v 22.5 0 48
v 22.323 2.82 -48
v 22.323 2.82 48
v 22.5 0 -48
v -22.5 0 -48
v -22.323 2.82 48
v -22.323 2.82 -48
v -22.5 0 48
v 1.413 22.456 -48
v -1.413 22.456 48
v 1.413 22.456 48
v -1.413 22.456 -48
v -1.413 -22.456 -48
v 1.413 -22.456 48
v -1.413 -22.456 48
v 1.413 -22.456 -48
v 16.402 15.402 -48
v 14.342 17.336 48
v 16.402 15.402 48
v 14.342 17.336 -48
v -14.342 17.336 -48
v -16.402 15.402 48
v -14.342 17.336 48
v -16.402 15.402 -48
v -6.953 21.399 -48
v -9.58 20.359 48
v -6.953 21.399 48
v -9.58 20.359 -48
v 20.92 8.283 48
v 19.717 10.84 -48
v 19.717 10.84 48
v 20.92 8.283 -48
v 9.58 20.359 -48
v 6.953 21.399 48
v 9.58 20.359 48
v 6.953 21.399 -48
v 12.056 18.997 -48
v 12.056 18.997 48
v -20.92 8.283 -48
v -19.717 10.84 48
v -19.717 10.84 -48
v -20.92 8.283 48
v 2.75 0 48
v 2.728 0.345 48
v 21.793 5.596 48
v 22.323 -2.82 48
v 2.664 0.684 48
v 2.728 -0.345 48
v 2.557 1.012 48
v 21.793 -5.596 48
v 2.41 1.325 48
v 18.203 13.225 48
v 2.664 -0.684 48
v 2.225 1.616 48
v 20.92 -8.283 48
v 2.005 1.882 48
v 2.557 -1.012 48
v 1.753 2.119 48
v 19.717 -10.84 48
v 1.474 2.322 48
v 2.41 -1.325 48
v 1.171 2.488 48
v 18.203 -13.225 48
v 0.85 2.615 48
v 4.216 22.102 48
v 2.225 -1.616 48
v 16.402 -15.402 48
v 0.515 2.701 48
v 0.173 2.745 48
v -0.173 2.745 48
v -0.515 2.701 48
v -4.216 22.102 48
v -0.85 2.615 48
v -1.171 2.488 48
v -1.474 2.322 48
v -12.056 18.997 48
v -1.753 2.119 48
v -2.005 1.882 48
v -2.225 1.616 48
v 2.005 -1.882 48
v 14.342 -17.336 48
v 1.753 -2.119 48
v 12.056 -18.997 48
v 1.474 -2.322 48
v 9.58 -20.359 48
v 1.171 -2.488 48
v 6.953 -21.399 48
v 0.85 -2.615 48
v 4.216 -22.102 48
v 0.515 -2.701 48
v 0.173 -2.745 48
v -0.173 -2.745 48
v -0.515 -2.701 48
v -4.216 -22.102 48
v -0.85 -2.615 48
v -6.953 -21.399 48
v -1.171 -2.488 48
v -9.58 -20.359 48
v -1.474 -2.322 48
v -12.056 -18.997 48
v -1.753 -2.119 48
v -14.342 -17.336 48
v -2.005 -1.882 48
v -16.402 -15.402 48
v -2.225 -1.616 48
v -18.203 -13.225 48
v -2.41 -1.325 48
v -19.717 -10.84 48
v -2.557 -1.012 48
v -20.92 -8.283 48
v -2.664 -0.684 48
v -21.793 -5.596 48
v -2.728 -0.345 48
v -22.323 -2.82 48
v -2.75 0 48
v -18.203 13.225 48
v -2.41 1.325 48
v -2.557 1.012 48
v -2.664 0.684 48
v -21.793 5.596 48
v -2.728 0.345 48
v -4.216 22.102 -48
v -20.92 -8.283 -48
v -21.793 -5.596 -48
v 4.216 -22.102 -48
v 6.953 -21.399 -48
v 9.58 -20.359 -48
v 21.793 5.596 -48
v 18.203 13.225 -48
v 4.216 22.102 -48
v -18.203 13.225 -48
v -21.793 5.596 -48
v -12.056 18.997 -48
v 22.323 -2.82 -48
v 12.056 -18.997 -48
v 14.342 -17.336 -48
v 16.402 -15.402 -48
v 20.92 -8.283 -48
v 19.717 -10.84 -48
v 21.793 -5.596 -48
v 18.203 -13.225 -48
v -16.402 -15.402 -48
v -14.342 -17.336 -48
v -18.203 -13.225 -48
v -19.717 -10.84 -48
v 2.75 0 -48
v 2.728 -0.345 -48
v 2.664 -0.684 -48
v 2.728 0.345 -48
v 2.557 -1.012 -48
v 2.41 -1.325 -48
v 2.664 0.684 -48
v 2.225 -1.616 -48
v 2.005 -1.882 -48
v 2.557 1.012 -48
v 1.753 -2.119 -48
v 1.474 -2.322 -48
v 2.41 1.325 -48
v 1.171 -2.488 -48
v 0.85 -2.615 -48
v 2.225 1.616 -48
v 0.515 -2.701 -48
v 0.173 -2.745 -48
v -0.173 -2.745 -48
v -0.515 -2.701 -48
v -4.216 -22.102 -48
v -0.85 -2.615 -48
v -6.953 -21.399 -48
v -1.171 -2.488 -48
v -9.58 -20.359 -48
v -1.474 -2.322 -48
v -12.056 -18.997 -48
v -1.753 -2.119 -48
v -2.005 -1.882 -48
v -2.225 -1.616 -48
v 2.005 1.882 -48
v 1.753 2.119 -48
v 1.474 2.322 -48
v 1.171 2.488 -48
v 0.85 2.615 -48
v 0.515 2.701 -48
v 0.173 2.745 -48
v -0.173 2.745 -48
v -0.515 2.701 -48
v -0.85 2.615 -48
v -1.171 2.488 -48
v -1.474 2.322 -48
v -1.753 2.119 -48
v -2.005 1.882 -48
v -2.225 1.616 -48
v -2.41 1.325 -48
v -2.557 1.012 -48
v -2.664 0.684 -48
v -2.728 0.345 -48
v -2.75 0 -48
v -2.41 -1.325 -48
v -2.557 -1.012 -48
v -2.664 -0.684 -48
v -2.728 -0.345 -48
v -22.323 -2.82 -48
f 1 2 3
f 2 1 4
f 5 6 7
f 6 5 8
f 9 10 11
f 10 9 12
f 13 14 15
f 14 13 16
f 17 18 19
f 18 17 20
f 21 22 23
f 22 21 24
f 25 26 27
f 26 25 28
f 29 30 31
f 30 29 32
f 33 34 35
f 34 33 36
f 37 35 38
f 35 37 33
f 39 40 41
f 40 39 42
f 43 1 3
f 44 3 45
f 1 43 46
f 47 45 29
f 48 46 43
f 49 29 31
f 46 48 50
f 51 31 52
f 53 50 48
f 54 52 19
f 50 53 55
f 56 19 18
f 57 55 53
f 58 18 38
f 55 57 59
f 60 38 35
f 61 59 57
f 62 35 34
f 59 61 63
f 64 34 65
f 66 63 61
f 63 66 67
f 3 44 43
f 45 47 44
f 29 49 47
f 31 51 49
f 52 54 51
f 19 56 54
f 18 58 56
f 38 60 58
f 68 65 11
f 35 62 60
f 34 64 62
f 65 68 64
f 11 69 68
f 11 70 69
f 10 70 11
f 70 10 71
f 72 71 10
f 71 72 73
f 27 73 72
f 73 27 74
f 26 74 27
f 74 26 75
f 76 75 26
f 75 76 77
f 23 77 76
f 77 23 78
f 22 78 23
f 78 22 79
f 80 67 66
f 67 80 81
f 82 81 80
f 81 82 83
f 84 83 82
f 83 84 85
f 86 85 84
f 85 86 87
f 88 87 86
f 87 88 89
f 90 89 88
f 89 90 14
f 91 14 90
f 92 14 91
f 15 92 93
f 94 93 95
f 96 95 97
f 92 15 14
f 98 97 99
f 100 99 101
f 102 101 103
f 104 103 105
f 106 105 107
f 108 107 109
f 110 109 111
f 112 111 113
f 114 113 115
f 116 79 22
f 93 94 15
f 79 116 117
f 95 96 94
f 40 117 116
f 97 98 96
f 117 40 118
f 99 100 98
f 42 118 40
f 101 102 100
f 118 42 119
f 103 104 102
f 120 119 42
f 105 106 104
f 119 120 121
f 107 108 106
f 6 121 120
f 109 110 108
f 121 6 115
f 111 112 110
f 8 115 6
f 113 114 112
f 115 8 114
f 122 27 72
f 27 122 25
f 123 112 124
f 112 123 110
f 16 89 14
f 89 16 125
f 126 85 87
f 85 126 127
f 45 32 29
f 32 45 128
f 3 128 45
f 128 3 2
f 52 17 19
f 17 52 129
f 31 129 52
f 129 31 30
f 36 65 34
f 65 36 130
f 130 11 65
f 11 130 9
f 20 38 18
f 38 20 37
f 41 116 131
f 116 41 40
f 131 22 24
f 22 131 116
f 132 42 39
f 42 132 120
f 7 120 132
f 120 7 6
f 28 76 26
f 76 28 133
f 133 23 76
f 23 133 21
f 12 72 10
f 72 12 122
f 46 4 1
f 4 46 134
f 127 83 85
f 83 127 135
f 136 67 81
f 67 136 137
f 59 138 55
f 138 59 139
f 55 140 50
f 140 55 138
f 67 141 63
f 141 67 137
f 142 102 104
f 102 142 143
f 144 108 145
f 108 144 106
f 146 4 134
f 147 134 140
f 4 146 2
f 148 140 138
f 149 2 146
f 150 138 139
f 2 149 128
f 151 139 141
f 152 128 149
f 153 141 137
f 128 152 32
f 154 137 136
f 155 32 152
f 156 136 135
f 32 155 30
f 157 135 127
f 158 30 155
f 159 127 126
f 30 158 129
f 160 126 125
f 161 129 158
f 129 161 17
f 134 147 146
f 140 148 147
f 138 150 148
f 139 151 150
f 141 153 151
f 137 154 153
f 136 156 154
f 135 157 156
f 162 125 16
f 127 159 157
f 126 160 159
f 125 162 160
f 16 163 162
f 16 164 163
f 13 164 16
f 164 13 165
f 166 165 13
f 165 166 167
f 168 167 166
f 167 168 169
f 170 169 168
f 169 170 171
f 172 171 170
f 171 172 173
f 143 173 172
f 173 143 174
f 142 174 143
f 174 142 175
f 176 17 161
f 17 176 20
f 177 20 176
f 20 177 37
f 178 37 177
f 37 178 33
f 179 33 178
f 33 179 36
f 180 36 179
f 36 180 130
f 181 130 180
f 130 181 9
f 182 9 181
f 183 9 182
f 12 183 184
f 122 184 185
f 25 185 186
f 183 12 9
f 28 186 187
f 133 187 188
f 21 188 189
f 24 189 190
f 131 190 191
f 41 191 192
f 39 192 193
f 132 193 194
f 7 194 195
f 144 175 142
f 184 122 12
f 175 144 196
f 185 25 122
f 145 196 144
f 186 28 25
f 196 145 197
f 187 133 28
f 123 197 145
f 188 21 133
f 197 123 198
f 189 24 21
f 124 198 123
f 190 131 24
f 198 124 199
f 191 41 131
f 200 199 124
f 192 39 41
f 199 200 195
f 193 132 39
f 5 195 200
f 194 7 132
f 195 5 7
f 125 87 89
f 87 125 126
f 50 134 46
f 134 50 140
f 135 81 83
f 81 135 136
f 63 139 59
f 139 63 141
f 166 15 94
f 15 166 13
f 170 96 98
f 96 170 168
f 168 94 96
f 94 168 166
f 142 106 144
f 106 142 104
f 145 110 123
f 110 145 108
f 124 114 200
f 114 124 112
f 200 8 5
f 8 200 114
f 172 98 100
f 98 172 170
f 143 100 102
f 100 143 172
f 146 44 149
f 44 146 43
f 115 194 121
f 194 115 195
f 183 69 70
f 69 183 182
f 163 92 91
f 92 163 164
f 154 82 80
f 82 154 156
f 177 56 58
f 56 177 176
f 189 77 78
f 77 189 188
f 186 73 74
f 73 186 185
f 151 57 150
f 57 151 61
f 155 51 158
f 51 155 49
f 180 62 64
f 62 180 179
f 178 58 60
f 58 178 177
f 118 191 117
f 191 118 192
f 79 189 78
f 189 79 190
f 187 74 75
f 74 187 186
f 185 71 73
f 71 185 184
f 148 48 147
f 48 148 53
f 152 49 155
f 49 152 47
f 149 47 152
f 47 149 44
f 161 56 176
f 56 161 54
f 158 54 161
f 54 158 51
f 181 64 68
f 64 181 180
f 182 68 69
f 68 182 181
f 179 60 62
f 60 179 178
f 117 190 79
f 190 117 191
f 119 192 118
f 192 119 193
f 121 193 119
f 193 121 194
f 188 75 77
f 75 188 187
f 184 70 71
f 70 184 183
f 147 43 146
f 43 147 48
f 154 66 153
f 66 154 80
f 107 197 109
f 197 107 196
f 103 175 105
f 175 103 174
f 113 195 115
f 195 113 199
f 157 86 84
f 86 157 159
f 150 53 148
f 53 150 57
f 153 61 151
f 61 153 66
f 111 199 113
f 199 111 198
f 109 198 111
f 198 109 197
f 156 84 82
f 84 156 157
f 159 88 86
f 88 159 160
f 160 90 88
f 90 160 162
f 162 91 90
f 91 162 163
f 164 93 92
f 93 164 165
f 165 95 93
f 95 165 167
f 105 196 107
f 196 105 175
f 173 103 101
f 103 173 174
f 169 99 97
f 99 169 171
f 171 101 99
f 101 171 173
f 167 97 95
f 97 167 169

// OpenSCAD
$fn = 50;


difference() {
	union() {
		translate(v = [0, 0, -48.0000000000]) {
			cylinder(h = 96, r = 22.5000000000);
		}
	}
	union() {
		translate(v = [0, 0, -100.0000000000]) {
			cylinder(h = 200, r = 2.7500000000);
		}
	}
}
